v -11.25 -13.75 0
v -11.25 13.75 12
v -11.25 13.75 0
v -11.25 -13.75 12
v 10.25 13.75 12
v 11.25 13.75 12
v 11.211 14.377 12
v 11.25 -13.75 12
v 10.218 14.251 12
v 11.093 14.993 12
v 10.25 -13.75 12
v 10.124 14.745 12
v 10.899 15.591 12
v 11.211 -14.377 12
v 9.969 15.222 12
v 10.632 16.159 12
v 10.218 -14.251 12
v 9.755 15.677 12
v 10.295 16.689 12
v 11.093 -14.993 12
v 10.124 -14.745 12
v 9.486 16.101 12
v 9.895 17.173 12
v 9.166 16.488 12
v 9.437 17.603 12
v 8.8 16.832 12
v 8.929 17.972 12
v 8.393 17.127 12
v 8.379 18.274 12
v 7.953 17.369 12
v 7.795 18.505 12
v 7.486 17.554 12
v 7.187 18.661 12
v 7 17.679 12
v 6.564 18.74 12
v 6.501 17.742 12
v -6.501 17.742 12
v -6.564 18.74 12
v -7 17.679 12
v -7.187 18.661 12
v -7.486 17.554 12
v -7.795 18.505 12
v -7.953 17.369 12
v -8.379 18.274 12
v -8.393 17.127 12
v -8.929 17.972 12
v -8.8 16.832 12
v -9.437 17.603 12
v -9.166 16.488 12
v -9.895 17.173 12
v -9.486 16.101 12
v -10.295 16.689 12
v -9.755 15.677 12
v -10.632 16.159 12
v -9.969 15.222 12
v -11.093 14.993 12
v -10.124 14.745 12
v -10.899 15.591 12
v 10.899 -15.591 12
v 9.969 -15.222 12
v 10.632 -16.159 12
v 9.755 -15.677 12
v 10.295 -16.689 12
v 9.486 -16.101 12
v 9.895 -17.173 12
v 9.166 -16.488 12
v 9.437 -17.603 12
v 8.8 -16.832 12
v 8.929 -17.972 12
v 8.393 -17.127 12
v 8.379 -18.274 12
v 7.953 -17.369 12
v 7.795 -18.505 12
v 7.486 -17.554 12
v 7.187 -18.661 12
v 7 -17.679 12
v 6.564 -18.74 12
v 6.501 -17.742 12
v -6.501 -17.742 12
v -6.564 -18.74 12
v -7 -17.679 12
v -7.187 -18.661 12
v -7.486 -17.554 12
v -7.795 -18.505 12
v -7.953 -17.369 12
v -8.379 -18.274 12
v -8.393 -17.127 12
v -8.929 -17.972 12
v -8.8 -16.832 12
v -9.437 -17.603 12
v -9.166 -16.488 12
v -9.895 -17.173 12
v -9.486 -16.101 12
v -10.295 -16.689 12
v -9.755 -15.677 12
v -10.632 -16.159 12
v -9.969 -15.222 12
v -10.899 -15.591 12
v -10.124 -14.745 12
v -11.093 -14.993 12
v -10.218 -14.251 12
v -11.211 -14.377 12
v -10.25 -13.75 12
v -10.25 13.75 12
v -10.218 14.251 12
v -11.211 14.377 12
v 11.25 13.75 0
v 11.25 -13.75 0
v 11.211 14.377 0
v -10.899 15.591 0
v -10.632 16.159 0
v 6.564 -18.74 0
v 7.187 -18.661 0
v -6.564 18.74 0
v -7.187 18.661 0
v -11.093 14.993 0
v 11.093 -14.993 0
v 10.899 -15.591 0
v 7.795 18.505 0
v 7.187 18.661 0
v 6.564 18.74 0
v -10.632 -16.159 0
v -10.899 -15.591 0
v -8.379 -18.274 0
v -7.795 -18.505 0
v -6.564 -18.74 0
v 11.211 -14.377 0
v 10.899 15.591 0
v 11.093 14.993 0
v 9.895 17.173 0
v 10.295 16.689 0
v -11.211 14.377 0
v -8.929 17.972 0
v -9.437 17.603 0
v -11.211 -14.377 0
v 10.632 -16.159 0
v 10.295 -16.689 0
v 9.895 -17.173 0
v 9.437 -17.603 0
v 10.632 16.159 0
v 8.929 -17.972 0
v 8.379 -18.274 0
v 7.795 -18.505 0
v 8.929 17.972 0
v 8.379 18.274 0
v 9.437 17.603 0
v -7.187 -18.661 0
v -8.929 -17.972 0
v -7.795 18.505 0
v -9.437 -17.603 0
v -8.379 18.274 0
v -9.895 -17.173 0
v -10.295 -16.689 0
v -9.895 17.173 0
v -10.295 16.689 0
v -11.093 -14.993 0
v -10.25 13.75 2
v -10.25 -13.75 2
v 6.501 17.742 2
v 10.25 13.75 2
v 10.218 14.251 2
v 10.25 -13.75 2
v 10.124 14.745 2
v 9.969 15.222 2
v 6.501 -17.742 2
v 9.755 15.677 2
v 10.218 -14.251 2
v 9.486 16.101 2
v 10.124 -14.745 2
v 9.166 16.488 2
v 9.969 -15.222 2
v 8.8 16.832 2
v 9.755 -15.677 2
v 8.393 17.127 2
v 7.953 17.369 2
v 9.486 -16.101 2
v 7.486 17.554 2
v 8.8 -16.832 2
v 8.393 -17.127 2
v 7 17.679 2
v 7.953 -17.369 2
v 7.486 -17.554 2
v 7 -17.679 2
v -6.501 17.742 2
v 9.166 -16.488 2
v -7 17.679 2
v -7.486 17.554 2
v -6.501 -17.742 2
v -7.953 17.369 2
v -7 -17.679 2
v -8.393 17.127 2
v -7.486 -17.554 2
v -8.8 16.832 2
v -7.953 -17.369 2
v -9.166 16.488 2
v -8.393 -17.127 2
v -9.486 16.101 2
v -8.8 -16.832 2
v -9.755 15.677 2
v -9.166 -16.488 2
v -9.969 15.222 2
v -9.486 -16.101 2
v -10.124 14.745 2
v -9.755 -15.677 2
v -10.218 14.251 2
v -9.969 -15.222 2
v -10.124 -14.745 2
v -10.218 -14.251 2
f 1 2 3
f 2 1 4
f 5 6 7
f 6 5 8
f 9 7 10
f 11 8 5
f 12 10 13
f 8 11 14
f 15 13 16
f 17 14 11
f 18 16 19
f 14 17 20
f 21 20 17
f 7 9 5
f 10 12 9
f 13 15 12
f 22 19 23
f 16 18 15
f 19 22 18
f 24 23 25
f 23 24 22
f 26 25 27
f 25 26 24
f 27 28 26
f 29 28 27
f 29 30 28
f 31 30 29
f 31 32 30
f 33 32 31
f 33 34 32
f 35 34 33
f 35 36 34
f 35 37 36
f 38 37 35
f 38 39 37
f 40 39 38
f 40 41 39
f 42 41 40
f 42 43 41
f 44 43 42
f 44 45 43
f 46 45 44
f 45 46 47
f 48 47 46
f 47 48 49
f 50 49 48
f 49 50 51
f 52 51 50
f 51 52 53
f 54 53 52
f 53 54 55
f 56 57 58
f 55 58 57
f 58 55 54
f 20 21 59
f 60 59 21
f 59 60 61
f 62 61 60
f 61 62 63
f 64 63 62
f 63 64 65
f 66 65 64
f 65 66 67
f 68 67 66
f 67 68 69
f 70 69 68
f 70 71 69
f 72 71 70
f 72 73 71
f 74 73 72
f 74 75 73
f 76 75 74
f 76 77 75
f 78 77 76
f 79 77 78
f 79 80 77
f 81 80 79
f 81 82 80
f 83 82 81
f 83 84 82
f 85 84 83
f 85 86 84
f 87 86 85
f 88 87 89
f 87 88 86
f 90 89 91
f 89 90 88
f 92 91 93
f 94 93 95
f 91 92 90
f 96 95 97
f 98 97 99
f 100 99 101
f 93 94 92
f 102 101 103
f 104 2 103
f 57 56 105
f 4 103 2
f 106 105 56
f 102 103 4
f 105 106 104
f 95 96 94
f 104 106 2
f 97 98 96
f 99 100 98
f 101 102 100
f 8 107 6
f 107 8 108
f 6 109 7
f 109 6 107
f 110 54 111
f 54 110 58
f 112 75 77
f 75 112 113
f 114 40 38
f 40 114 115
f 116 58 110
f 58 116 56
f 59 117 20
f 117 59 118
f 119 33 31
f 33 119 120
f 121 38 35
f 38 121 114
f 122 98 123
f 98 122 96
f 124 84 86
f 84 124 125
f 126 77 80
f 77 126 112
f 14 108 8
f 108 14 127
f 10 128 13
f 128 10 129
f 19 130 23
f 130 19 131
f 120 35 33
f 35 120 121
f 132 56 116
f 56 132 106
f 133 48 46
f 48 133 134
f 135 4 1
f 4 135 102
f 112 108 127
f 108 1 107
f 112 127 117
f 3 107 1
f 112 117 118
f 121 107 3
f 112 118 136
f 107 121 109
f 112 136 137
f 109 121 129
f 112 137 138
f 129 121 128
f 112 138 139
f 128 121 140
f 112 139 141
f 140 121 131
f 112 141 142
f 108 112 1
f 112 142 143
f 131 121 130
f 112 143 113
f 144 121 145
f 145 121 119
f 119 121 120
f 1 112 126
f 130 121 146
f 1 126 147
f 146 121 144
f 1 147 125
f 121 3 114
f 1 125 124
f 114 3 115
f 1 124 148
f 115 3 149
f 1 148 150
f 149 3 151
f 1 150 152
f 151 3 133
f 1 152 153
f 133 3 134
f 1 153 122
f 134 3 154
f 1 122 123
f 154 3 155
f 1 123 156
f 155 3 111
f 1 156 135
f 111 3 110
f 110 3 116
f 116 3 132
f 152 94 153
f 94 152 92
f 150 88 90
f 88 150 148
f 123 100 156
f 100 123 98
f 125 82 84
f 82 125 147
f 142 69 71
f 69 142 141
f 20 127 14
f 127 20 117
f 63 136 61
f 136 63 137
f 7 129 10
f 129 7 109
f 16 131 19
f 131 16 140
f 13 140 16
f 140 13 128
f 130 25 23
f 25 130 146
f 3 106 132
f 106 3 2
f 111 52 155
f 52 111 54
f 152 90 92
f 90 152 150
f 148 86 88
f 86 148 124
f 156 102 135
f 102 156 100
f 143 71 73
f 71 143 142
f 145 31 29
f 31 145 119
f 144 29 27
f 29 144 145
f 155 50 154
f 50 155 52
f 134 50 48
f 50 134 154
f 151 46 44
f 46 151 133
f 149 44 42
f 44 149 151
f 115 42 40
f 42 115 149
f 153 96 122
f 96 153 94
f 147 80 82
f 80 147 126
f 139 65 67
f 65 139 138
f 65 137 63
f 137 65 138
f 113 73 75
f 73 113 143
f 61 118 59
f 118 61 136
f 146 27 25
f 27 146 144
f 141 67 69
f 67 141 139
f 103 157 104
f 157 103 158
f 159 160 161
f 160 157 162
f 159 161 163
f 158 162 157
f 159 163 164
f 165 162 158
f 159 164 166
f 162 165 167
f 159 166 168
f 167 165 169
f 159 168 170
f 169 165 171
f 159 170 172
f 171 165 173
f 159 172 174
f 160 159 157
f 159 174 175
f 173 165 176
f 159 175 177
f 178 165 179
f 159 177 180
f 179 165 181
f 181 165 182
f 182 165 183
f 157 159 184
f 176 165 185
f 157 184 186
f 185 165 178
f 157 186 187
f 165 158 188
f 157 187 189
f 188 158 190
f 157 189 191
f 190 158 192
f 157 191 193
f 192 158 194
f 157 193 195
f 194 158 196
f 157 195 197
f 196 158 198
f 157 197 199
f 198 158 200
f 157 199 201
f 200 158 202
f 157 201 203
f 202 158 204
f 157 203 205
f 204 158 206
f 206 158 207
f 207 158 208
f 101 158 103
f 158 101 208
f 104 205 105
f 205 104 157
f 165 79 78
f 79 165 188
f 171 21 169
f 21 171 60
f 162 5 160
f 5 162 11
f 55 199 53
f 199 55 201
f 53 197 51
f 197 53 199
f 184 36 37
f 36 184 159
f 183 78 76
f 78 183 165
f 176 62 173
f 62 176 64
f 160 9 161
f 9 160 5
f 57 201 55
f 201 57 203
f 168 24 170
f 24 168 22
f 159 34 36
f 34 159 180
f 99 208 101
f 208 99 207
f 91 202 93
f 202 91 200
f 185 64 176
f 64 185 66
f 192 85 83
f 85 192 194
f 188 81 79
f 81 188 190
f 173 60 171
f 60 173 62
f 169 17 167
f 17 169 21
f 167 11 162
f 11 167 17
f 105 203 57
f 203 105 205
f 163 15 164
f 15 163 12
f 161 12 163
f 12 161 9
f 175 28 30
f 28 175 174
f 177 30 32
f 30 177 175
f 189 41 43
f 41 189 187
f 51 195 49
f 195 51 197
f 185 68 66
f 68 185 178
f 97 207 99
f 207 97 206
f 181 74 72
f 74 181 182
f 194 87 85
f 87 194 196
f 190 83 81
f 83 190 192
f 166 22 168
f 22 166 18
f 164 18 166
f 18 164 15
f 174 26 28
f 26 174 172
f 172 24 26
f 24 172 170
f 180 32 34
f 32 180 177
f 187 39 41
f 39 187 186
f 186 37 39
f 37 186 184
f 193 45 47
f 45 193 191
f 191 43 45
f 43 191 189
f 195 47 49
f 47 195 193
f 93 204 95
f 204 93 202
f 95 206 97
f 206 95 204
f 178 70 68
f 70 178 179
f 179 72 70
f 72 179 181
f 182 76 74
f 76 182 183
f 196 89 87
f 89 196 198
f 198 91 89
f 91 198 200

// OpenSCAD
$fn = 50;


difference() {
	union() {
		hull() {
			translate(v = [-6.2500000000, 13.7500000000, 0]) {
				cylinder(h = 12, r = 5);
			}
			translate(v = [6.2500000000, 13.7500000000, 0]) {
				cylinder(h = 12, r = 5);
			}
			translate(v = [-6.2500000000, -13.7500000000, 0]) {
				cylinder(h = 12, r = 5);
			}
			translate(v = [6.2500000000, -13.7500000000, 0]) {
				cylinder(h = 12, r = 5);
			}
		}
	}
	union() {
		translate(v = [0, 0, 2]) {
			hull() {
				translate(v = [-6.2500000000, 13.7500000000, 0]) {
					cylinder(h = 10, r = 4);
				}
				translate(v = [6.2500000000, 13.7500000000, 0]) {
					cylinder(h = 10, r = 4);
				}
				translate(v = [-6.2500000000, -13.7500000000, 0]) {
					cylinder(h = 10, r = 4);
				}
				translate(v = [6.2500000000, -13.7500000000, 0]) {
					cylinder(h = 10, r = 4);
				}
			}
		}
	}
}
